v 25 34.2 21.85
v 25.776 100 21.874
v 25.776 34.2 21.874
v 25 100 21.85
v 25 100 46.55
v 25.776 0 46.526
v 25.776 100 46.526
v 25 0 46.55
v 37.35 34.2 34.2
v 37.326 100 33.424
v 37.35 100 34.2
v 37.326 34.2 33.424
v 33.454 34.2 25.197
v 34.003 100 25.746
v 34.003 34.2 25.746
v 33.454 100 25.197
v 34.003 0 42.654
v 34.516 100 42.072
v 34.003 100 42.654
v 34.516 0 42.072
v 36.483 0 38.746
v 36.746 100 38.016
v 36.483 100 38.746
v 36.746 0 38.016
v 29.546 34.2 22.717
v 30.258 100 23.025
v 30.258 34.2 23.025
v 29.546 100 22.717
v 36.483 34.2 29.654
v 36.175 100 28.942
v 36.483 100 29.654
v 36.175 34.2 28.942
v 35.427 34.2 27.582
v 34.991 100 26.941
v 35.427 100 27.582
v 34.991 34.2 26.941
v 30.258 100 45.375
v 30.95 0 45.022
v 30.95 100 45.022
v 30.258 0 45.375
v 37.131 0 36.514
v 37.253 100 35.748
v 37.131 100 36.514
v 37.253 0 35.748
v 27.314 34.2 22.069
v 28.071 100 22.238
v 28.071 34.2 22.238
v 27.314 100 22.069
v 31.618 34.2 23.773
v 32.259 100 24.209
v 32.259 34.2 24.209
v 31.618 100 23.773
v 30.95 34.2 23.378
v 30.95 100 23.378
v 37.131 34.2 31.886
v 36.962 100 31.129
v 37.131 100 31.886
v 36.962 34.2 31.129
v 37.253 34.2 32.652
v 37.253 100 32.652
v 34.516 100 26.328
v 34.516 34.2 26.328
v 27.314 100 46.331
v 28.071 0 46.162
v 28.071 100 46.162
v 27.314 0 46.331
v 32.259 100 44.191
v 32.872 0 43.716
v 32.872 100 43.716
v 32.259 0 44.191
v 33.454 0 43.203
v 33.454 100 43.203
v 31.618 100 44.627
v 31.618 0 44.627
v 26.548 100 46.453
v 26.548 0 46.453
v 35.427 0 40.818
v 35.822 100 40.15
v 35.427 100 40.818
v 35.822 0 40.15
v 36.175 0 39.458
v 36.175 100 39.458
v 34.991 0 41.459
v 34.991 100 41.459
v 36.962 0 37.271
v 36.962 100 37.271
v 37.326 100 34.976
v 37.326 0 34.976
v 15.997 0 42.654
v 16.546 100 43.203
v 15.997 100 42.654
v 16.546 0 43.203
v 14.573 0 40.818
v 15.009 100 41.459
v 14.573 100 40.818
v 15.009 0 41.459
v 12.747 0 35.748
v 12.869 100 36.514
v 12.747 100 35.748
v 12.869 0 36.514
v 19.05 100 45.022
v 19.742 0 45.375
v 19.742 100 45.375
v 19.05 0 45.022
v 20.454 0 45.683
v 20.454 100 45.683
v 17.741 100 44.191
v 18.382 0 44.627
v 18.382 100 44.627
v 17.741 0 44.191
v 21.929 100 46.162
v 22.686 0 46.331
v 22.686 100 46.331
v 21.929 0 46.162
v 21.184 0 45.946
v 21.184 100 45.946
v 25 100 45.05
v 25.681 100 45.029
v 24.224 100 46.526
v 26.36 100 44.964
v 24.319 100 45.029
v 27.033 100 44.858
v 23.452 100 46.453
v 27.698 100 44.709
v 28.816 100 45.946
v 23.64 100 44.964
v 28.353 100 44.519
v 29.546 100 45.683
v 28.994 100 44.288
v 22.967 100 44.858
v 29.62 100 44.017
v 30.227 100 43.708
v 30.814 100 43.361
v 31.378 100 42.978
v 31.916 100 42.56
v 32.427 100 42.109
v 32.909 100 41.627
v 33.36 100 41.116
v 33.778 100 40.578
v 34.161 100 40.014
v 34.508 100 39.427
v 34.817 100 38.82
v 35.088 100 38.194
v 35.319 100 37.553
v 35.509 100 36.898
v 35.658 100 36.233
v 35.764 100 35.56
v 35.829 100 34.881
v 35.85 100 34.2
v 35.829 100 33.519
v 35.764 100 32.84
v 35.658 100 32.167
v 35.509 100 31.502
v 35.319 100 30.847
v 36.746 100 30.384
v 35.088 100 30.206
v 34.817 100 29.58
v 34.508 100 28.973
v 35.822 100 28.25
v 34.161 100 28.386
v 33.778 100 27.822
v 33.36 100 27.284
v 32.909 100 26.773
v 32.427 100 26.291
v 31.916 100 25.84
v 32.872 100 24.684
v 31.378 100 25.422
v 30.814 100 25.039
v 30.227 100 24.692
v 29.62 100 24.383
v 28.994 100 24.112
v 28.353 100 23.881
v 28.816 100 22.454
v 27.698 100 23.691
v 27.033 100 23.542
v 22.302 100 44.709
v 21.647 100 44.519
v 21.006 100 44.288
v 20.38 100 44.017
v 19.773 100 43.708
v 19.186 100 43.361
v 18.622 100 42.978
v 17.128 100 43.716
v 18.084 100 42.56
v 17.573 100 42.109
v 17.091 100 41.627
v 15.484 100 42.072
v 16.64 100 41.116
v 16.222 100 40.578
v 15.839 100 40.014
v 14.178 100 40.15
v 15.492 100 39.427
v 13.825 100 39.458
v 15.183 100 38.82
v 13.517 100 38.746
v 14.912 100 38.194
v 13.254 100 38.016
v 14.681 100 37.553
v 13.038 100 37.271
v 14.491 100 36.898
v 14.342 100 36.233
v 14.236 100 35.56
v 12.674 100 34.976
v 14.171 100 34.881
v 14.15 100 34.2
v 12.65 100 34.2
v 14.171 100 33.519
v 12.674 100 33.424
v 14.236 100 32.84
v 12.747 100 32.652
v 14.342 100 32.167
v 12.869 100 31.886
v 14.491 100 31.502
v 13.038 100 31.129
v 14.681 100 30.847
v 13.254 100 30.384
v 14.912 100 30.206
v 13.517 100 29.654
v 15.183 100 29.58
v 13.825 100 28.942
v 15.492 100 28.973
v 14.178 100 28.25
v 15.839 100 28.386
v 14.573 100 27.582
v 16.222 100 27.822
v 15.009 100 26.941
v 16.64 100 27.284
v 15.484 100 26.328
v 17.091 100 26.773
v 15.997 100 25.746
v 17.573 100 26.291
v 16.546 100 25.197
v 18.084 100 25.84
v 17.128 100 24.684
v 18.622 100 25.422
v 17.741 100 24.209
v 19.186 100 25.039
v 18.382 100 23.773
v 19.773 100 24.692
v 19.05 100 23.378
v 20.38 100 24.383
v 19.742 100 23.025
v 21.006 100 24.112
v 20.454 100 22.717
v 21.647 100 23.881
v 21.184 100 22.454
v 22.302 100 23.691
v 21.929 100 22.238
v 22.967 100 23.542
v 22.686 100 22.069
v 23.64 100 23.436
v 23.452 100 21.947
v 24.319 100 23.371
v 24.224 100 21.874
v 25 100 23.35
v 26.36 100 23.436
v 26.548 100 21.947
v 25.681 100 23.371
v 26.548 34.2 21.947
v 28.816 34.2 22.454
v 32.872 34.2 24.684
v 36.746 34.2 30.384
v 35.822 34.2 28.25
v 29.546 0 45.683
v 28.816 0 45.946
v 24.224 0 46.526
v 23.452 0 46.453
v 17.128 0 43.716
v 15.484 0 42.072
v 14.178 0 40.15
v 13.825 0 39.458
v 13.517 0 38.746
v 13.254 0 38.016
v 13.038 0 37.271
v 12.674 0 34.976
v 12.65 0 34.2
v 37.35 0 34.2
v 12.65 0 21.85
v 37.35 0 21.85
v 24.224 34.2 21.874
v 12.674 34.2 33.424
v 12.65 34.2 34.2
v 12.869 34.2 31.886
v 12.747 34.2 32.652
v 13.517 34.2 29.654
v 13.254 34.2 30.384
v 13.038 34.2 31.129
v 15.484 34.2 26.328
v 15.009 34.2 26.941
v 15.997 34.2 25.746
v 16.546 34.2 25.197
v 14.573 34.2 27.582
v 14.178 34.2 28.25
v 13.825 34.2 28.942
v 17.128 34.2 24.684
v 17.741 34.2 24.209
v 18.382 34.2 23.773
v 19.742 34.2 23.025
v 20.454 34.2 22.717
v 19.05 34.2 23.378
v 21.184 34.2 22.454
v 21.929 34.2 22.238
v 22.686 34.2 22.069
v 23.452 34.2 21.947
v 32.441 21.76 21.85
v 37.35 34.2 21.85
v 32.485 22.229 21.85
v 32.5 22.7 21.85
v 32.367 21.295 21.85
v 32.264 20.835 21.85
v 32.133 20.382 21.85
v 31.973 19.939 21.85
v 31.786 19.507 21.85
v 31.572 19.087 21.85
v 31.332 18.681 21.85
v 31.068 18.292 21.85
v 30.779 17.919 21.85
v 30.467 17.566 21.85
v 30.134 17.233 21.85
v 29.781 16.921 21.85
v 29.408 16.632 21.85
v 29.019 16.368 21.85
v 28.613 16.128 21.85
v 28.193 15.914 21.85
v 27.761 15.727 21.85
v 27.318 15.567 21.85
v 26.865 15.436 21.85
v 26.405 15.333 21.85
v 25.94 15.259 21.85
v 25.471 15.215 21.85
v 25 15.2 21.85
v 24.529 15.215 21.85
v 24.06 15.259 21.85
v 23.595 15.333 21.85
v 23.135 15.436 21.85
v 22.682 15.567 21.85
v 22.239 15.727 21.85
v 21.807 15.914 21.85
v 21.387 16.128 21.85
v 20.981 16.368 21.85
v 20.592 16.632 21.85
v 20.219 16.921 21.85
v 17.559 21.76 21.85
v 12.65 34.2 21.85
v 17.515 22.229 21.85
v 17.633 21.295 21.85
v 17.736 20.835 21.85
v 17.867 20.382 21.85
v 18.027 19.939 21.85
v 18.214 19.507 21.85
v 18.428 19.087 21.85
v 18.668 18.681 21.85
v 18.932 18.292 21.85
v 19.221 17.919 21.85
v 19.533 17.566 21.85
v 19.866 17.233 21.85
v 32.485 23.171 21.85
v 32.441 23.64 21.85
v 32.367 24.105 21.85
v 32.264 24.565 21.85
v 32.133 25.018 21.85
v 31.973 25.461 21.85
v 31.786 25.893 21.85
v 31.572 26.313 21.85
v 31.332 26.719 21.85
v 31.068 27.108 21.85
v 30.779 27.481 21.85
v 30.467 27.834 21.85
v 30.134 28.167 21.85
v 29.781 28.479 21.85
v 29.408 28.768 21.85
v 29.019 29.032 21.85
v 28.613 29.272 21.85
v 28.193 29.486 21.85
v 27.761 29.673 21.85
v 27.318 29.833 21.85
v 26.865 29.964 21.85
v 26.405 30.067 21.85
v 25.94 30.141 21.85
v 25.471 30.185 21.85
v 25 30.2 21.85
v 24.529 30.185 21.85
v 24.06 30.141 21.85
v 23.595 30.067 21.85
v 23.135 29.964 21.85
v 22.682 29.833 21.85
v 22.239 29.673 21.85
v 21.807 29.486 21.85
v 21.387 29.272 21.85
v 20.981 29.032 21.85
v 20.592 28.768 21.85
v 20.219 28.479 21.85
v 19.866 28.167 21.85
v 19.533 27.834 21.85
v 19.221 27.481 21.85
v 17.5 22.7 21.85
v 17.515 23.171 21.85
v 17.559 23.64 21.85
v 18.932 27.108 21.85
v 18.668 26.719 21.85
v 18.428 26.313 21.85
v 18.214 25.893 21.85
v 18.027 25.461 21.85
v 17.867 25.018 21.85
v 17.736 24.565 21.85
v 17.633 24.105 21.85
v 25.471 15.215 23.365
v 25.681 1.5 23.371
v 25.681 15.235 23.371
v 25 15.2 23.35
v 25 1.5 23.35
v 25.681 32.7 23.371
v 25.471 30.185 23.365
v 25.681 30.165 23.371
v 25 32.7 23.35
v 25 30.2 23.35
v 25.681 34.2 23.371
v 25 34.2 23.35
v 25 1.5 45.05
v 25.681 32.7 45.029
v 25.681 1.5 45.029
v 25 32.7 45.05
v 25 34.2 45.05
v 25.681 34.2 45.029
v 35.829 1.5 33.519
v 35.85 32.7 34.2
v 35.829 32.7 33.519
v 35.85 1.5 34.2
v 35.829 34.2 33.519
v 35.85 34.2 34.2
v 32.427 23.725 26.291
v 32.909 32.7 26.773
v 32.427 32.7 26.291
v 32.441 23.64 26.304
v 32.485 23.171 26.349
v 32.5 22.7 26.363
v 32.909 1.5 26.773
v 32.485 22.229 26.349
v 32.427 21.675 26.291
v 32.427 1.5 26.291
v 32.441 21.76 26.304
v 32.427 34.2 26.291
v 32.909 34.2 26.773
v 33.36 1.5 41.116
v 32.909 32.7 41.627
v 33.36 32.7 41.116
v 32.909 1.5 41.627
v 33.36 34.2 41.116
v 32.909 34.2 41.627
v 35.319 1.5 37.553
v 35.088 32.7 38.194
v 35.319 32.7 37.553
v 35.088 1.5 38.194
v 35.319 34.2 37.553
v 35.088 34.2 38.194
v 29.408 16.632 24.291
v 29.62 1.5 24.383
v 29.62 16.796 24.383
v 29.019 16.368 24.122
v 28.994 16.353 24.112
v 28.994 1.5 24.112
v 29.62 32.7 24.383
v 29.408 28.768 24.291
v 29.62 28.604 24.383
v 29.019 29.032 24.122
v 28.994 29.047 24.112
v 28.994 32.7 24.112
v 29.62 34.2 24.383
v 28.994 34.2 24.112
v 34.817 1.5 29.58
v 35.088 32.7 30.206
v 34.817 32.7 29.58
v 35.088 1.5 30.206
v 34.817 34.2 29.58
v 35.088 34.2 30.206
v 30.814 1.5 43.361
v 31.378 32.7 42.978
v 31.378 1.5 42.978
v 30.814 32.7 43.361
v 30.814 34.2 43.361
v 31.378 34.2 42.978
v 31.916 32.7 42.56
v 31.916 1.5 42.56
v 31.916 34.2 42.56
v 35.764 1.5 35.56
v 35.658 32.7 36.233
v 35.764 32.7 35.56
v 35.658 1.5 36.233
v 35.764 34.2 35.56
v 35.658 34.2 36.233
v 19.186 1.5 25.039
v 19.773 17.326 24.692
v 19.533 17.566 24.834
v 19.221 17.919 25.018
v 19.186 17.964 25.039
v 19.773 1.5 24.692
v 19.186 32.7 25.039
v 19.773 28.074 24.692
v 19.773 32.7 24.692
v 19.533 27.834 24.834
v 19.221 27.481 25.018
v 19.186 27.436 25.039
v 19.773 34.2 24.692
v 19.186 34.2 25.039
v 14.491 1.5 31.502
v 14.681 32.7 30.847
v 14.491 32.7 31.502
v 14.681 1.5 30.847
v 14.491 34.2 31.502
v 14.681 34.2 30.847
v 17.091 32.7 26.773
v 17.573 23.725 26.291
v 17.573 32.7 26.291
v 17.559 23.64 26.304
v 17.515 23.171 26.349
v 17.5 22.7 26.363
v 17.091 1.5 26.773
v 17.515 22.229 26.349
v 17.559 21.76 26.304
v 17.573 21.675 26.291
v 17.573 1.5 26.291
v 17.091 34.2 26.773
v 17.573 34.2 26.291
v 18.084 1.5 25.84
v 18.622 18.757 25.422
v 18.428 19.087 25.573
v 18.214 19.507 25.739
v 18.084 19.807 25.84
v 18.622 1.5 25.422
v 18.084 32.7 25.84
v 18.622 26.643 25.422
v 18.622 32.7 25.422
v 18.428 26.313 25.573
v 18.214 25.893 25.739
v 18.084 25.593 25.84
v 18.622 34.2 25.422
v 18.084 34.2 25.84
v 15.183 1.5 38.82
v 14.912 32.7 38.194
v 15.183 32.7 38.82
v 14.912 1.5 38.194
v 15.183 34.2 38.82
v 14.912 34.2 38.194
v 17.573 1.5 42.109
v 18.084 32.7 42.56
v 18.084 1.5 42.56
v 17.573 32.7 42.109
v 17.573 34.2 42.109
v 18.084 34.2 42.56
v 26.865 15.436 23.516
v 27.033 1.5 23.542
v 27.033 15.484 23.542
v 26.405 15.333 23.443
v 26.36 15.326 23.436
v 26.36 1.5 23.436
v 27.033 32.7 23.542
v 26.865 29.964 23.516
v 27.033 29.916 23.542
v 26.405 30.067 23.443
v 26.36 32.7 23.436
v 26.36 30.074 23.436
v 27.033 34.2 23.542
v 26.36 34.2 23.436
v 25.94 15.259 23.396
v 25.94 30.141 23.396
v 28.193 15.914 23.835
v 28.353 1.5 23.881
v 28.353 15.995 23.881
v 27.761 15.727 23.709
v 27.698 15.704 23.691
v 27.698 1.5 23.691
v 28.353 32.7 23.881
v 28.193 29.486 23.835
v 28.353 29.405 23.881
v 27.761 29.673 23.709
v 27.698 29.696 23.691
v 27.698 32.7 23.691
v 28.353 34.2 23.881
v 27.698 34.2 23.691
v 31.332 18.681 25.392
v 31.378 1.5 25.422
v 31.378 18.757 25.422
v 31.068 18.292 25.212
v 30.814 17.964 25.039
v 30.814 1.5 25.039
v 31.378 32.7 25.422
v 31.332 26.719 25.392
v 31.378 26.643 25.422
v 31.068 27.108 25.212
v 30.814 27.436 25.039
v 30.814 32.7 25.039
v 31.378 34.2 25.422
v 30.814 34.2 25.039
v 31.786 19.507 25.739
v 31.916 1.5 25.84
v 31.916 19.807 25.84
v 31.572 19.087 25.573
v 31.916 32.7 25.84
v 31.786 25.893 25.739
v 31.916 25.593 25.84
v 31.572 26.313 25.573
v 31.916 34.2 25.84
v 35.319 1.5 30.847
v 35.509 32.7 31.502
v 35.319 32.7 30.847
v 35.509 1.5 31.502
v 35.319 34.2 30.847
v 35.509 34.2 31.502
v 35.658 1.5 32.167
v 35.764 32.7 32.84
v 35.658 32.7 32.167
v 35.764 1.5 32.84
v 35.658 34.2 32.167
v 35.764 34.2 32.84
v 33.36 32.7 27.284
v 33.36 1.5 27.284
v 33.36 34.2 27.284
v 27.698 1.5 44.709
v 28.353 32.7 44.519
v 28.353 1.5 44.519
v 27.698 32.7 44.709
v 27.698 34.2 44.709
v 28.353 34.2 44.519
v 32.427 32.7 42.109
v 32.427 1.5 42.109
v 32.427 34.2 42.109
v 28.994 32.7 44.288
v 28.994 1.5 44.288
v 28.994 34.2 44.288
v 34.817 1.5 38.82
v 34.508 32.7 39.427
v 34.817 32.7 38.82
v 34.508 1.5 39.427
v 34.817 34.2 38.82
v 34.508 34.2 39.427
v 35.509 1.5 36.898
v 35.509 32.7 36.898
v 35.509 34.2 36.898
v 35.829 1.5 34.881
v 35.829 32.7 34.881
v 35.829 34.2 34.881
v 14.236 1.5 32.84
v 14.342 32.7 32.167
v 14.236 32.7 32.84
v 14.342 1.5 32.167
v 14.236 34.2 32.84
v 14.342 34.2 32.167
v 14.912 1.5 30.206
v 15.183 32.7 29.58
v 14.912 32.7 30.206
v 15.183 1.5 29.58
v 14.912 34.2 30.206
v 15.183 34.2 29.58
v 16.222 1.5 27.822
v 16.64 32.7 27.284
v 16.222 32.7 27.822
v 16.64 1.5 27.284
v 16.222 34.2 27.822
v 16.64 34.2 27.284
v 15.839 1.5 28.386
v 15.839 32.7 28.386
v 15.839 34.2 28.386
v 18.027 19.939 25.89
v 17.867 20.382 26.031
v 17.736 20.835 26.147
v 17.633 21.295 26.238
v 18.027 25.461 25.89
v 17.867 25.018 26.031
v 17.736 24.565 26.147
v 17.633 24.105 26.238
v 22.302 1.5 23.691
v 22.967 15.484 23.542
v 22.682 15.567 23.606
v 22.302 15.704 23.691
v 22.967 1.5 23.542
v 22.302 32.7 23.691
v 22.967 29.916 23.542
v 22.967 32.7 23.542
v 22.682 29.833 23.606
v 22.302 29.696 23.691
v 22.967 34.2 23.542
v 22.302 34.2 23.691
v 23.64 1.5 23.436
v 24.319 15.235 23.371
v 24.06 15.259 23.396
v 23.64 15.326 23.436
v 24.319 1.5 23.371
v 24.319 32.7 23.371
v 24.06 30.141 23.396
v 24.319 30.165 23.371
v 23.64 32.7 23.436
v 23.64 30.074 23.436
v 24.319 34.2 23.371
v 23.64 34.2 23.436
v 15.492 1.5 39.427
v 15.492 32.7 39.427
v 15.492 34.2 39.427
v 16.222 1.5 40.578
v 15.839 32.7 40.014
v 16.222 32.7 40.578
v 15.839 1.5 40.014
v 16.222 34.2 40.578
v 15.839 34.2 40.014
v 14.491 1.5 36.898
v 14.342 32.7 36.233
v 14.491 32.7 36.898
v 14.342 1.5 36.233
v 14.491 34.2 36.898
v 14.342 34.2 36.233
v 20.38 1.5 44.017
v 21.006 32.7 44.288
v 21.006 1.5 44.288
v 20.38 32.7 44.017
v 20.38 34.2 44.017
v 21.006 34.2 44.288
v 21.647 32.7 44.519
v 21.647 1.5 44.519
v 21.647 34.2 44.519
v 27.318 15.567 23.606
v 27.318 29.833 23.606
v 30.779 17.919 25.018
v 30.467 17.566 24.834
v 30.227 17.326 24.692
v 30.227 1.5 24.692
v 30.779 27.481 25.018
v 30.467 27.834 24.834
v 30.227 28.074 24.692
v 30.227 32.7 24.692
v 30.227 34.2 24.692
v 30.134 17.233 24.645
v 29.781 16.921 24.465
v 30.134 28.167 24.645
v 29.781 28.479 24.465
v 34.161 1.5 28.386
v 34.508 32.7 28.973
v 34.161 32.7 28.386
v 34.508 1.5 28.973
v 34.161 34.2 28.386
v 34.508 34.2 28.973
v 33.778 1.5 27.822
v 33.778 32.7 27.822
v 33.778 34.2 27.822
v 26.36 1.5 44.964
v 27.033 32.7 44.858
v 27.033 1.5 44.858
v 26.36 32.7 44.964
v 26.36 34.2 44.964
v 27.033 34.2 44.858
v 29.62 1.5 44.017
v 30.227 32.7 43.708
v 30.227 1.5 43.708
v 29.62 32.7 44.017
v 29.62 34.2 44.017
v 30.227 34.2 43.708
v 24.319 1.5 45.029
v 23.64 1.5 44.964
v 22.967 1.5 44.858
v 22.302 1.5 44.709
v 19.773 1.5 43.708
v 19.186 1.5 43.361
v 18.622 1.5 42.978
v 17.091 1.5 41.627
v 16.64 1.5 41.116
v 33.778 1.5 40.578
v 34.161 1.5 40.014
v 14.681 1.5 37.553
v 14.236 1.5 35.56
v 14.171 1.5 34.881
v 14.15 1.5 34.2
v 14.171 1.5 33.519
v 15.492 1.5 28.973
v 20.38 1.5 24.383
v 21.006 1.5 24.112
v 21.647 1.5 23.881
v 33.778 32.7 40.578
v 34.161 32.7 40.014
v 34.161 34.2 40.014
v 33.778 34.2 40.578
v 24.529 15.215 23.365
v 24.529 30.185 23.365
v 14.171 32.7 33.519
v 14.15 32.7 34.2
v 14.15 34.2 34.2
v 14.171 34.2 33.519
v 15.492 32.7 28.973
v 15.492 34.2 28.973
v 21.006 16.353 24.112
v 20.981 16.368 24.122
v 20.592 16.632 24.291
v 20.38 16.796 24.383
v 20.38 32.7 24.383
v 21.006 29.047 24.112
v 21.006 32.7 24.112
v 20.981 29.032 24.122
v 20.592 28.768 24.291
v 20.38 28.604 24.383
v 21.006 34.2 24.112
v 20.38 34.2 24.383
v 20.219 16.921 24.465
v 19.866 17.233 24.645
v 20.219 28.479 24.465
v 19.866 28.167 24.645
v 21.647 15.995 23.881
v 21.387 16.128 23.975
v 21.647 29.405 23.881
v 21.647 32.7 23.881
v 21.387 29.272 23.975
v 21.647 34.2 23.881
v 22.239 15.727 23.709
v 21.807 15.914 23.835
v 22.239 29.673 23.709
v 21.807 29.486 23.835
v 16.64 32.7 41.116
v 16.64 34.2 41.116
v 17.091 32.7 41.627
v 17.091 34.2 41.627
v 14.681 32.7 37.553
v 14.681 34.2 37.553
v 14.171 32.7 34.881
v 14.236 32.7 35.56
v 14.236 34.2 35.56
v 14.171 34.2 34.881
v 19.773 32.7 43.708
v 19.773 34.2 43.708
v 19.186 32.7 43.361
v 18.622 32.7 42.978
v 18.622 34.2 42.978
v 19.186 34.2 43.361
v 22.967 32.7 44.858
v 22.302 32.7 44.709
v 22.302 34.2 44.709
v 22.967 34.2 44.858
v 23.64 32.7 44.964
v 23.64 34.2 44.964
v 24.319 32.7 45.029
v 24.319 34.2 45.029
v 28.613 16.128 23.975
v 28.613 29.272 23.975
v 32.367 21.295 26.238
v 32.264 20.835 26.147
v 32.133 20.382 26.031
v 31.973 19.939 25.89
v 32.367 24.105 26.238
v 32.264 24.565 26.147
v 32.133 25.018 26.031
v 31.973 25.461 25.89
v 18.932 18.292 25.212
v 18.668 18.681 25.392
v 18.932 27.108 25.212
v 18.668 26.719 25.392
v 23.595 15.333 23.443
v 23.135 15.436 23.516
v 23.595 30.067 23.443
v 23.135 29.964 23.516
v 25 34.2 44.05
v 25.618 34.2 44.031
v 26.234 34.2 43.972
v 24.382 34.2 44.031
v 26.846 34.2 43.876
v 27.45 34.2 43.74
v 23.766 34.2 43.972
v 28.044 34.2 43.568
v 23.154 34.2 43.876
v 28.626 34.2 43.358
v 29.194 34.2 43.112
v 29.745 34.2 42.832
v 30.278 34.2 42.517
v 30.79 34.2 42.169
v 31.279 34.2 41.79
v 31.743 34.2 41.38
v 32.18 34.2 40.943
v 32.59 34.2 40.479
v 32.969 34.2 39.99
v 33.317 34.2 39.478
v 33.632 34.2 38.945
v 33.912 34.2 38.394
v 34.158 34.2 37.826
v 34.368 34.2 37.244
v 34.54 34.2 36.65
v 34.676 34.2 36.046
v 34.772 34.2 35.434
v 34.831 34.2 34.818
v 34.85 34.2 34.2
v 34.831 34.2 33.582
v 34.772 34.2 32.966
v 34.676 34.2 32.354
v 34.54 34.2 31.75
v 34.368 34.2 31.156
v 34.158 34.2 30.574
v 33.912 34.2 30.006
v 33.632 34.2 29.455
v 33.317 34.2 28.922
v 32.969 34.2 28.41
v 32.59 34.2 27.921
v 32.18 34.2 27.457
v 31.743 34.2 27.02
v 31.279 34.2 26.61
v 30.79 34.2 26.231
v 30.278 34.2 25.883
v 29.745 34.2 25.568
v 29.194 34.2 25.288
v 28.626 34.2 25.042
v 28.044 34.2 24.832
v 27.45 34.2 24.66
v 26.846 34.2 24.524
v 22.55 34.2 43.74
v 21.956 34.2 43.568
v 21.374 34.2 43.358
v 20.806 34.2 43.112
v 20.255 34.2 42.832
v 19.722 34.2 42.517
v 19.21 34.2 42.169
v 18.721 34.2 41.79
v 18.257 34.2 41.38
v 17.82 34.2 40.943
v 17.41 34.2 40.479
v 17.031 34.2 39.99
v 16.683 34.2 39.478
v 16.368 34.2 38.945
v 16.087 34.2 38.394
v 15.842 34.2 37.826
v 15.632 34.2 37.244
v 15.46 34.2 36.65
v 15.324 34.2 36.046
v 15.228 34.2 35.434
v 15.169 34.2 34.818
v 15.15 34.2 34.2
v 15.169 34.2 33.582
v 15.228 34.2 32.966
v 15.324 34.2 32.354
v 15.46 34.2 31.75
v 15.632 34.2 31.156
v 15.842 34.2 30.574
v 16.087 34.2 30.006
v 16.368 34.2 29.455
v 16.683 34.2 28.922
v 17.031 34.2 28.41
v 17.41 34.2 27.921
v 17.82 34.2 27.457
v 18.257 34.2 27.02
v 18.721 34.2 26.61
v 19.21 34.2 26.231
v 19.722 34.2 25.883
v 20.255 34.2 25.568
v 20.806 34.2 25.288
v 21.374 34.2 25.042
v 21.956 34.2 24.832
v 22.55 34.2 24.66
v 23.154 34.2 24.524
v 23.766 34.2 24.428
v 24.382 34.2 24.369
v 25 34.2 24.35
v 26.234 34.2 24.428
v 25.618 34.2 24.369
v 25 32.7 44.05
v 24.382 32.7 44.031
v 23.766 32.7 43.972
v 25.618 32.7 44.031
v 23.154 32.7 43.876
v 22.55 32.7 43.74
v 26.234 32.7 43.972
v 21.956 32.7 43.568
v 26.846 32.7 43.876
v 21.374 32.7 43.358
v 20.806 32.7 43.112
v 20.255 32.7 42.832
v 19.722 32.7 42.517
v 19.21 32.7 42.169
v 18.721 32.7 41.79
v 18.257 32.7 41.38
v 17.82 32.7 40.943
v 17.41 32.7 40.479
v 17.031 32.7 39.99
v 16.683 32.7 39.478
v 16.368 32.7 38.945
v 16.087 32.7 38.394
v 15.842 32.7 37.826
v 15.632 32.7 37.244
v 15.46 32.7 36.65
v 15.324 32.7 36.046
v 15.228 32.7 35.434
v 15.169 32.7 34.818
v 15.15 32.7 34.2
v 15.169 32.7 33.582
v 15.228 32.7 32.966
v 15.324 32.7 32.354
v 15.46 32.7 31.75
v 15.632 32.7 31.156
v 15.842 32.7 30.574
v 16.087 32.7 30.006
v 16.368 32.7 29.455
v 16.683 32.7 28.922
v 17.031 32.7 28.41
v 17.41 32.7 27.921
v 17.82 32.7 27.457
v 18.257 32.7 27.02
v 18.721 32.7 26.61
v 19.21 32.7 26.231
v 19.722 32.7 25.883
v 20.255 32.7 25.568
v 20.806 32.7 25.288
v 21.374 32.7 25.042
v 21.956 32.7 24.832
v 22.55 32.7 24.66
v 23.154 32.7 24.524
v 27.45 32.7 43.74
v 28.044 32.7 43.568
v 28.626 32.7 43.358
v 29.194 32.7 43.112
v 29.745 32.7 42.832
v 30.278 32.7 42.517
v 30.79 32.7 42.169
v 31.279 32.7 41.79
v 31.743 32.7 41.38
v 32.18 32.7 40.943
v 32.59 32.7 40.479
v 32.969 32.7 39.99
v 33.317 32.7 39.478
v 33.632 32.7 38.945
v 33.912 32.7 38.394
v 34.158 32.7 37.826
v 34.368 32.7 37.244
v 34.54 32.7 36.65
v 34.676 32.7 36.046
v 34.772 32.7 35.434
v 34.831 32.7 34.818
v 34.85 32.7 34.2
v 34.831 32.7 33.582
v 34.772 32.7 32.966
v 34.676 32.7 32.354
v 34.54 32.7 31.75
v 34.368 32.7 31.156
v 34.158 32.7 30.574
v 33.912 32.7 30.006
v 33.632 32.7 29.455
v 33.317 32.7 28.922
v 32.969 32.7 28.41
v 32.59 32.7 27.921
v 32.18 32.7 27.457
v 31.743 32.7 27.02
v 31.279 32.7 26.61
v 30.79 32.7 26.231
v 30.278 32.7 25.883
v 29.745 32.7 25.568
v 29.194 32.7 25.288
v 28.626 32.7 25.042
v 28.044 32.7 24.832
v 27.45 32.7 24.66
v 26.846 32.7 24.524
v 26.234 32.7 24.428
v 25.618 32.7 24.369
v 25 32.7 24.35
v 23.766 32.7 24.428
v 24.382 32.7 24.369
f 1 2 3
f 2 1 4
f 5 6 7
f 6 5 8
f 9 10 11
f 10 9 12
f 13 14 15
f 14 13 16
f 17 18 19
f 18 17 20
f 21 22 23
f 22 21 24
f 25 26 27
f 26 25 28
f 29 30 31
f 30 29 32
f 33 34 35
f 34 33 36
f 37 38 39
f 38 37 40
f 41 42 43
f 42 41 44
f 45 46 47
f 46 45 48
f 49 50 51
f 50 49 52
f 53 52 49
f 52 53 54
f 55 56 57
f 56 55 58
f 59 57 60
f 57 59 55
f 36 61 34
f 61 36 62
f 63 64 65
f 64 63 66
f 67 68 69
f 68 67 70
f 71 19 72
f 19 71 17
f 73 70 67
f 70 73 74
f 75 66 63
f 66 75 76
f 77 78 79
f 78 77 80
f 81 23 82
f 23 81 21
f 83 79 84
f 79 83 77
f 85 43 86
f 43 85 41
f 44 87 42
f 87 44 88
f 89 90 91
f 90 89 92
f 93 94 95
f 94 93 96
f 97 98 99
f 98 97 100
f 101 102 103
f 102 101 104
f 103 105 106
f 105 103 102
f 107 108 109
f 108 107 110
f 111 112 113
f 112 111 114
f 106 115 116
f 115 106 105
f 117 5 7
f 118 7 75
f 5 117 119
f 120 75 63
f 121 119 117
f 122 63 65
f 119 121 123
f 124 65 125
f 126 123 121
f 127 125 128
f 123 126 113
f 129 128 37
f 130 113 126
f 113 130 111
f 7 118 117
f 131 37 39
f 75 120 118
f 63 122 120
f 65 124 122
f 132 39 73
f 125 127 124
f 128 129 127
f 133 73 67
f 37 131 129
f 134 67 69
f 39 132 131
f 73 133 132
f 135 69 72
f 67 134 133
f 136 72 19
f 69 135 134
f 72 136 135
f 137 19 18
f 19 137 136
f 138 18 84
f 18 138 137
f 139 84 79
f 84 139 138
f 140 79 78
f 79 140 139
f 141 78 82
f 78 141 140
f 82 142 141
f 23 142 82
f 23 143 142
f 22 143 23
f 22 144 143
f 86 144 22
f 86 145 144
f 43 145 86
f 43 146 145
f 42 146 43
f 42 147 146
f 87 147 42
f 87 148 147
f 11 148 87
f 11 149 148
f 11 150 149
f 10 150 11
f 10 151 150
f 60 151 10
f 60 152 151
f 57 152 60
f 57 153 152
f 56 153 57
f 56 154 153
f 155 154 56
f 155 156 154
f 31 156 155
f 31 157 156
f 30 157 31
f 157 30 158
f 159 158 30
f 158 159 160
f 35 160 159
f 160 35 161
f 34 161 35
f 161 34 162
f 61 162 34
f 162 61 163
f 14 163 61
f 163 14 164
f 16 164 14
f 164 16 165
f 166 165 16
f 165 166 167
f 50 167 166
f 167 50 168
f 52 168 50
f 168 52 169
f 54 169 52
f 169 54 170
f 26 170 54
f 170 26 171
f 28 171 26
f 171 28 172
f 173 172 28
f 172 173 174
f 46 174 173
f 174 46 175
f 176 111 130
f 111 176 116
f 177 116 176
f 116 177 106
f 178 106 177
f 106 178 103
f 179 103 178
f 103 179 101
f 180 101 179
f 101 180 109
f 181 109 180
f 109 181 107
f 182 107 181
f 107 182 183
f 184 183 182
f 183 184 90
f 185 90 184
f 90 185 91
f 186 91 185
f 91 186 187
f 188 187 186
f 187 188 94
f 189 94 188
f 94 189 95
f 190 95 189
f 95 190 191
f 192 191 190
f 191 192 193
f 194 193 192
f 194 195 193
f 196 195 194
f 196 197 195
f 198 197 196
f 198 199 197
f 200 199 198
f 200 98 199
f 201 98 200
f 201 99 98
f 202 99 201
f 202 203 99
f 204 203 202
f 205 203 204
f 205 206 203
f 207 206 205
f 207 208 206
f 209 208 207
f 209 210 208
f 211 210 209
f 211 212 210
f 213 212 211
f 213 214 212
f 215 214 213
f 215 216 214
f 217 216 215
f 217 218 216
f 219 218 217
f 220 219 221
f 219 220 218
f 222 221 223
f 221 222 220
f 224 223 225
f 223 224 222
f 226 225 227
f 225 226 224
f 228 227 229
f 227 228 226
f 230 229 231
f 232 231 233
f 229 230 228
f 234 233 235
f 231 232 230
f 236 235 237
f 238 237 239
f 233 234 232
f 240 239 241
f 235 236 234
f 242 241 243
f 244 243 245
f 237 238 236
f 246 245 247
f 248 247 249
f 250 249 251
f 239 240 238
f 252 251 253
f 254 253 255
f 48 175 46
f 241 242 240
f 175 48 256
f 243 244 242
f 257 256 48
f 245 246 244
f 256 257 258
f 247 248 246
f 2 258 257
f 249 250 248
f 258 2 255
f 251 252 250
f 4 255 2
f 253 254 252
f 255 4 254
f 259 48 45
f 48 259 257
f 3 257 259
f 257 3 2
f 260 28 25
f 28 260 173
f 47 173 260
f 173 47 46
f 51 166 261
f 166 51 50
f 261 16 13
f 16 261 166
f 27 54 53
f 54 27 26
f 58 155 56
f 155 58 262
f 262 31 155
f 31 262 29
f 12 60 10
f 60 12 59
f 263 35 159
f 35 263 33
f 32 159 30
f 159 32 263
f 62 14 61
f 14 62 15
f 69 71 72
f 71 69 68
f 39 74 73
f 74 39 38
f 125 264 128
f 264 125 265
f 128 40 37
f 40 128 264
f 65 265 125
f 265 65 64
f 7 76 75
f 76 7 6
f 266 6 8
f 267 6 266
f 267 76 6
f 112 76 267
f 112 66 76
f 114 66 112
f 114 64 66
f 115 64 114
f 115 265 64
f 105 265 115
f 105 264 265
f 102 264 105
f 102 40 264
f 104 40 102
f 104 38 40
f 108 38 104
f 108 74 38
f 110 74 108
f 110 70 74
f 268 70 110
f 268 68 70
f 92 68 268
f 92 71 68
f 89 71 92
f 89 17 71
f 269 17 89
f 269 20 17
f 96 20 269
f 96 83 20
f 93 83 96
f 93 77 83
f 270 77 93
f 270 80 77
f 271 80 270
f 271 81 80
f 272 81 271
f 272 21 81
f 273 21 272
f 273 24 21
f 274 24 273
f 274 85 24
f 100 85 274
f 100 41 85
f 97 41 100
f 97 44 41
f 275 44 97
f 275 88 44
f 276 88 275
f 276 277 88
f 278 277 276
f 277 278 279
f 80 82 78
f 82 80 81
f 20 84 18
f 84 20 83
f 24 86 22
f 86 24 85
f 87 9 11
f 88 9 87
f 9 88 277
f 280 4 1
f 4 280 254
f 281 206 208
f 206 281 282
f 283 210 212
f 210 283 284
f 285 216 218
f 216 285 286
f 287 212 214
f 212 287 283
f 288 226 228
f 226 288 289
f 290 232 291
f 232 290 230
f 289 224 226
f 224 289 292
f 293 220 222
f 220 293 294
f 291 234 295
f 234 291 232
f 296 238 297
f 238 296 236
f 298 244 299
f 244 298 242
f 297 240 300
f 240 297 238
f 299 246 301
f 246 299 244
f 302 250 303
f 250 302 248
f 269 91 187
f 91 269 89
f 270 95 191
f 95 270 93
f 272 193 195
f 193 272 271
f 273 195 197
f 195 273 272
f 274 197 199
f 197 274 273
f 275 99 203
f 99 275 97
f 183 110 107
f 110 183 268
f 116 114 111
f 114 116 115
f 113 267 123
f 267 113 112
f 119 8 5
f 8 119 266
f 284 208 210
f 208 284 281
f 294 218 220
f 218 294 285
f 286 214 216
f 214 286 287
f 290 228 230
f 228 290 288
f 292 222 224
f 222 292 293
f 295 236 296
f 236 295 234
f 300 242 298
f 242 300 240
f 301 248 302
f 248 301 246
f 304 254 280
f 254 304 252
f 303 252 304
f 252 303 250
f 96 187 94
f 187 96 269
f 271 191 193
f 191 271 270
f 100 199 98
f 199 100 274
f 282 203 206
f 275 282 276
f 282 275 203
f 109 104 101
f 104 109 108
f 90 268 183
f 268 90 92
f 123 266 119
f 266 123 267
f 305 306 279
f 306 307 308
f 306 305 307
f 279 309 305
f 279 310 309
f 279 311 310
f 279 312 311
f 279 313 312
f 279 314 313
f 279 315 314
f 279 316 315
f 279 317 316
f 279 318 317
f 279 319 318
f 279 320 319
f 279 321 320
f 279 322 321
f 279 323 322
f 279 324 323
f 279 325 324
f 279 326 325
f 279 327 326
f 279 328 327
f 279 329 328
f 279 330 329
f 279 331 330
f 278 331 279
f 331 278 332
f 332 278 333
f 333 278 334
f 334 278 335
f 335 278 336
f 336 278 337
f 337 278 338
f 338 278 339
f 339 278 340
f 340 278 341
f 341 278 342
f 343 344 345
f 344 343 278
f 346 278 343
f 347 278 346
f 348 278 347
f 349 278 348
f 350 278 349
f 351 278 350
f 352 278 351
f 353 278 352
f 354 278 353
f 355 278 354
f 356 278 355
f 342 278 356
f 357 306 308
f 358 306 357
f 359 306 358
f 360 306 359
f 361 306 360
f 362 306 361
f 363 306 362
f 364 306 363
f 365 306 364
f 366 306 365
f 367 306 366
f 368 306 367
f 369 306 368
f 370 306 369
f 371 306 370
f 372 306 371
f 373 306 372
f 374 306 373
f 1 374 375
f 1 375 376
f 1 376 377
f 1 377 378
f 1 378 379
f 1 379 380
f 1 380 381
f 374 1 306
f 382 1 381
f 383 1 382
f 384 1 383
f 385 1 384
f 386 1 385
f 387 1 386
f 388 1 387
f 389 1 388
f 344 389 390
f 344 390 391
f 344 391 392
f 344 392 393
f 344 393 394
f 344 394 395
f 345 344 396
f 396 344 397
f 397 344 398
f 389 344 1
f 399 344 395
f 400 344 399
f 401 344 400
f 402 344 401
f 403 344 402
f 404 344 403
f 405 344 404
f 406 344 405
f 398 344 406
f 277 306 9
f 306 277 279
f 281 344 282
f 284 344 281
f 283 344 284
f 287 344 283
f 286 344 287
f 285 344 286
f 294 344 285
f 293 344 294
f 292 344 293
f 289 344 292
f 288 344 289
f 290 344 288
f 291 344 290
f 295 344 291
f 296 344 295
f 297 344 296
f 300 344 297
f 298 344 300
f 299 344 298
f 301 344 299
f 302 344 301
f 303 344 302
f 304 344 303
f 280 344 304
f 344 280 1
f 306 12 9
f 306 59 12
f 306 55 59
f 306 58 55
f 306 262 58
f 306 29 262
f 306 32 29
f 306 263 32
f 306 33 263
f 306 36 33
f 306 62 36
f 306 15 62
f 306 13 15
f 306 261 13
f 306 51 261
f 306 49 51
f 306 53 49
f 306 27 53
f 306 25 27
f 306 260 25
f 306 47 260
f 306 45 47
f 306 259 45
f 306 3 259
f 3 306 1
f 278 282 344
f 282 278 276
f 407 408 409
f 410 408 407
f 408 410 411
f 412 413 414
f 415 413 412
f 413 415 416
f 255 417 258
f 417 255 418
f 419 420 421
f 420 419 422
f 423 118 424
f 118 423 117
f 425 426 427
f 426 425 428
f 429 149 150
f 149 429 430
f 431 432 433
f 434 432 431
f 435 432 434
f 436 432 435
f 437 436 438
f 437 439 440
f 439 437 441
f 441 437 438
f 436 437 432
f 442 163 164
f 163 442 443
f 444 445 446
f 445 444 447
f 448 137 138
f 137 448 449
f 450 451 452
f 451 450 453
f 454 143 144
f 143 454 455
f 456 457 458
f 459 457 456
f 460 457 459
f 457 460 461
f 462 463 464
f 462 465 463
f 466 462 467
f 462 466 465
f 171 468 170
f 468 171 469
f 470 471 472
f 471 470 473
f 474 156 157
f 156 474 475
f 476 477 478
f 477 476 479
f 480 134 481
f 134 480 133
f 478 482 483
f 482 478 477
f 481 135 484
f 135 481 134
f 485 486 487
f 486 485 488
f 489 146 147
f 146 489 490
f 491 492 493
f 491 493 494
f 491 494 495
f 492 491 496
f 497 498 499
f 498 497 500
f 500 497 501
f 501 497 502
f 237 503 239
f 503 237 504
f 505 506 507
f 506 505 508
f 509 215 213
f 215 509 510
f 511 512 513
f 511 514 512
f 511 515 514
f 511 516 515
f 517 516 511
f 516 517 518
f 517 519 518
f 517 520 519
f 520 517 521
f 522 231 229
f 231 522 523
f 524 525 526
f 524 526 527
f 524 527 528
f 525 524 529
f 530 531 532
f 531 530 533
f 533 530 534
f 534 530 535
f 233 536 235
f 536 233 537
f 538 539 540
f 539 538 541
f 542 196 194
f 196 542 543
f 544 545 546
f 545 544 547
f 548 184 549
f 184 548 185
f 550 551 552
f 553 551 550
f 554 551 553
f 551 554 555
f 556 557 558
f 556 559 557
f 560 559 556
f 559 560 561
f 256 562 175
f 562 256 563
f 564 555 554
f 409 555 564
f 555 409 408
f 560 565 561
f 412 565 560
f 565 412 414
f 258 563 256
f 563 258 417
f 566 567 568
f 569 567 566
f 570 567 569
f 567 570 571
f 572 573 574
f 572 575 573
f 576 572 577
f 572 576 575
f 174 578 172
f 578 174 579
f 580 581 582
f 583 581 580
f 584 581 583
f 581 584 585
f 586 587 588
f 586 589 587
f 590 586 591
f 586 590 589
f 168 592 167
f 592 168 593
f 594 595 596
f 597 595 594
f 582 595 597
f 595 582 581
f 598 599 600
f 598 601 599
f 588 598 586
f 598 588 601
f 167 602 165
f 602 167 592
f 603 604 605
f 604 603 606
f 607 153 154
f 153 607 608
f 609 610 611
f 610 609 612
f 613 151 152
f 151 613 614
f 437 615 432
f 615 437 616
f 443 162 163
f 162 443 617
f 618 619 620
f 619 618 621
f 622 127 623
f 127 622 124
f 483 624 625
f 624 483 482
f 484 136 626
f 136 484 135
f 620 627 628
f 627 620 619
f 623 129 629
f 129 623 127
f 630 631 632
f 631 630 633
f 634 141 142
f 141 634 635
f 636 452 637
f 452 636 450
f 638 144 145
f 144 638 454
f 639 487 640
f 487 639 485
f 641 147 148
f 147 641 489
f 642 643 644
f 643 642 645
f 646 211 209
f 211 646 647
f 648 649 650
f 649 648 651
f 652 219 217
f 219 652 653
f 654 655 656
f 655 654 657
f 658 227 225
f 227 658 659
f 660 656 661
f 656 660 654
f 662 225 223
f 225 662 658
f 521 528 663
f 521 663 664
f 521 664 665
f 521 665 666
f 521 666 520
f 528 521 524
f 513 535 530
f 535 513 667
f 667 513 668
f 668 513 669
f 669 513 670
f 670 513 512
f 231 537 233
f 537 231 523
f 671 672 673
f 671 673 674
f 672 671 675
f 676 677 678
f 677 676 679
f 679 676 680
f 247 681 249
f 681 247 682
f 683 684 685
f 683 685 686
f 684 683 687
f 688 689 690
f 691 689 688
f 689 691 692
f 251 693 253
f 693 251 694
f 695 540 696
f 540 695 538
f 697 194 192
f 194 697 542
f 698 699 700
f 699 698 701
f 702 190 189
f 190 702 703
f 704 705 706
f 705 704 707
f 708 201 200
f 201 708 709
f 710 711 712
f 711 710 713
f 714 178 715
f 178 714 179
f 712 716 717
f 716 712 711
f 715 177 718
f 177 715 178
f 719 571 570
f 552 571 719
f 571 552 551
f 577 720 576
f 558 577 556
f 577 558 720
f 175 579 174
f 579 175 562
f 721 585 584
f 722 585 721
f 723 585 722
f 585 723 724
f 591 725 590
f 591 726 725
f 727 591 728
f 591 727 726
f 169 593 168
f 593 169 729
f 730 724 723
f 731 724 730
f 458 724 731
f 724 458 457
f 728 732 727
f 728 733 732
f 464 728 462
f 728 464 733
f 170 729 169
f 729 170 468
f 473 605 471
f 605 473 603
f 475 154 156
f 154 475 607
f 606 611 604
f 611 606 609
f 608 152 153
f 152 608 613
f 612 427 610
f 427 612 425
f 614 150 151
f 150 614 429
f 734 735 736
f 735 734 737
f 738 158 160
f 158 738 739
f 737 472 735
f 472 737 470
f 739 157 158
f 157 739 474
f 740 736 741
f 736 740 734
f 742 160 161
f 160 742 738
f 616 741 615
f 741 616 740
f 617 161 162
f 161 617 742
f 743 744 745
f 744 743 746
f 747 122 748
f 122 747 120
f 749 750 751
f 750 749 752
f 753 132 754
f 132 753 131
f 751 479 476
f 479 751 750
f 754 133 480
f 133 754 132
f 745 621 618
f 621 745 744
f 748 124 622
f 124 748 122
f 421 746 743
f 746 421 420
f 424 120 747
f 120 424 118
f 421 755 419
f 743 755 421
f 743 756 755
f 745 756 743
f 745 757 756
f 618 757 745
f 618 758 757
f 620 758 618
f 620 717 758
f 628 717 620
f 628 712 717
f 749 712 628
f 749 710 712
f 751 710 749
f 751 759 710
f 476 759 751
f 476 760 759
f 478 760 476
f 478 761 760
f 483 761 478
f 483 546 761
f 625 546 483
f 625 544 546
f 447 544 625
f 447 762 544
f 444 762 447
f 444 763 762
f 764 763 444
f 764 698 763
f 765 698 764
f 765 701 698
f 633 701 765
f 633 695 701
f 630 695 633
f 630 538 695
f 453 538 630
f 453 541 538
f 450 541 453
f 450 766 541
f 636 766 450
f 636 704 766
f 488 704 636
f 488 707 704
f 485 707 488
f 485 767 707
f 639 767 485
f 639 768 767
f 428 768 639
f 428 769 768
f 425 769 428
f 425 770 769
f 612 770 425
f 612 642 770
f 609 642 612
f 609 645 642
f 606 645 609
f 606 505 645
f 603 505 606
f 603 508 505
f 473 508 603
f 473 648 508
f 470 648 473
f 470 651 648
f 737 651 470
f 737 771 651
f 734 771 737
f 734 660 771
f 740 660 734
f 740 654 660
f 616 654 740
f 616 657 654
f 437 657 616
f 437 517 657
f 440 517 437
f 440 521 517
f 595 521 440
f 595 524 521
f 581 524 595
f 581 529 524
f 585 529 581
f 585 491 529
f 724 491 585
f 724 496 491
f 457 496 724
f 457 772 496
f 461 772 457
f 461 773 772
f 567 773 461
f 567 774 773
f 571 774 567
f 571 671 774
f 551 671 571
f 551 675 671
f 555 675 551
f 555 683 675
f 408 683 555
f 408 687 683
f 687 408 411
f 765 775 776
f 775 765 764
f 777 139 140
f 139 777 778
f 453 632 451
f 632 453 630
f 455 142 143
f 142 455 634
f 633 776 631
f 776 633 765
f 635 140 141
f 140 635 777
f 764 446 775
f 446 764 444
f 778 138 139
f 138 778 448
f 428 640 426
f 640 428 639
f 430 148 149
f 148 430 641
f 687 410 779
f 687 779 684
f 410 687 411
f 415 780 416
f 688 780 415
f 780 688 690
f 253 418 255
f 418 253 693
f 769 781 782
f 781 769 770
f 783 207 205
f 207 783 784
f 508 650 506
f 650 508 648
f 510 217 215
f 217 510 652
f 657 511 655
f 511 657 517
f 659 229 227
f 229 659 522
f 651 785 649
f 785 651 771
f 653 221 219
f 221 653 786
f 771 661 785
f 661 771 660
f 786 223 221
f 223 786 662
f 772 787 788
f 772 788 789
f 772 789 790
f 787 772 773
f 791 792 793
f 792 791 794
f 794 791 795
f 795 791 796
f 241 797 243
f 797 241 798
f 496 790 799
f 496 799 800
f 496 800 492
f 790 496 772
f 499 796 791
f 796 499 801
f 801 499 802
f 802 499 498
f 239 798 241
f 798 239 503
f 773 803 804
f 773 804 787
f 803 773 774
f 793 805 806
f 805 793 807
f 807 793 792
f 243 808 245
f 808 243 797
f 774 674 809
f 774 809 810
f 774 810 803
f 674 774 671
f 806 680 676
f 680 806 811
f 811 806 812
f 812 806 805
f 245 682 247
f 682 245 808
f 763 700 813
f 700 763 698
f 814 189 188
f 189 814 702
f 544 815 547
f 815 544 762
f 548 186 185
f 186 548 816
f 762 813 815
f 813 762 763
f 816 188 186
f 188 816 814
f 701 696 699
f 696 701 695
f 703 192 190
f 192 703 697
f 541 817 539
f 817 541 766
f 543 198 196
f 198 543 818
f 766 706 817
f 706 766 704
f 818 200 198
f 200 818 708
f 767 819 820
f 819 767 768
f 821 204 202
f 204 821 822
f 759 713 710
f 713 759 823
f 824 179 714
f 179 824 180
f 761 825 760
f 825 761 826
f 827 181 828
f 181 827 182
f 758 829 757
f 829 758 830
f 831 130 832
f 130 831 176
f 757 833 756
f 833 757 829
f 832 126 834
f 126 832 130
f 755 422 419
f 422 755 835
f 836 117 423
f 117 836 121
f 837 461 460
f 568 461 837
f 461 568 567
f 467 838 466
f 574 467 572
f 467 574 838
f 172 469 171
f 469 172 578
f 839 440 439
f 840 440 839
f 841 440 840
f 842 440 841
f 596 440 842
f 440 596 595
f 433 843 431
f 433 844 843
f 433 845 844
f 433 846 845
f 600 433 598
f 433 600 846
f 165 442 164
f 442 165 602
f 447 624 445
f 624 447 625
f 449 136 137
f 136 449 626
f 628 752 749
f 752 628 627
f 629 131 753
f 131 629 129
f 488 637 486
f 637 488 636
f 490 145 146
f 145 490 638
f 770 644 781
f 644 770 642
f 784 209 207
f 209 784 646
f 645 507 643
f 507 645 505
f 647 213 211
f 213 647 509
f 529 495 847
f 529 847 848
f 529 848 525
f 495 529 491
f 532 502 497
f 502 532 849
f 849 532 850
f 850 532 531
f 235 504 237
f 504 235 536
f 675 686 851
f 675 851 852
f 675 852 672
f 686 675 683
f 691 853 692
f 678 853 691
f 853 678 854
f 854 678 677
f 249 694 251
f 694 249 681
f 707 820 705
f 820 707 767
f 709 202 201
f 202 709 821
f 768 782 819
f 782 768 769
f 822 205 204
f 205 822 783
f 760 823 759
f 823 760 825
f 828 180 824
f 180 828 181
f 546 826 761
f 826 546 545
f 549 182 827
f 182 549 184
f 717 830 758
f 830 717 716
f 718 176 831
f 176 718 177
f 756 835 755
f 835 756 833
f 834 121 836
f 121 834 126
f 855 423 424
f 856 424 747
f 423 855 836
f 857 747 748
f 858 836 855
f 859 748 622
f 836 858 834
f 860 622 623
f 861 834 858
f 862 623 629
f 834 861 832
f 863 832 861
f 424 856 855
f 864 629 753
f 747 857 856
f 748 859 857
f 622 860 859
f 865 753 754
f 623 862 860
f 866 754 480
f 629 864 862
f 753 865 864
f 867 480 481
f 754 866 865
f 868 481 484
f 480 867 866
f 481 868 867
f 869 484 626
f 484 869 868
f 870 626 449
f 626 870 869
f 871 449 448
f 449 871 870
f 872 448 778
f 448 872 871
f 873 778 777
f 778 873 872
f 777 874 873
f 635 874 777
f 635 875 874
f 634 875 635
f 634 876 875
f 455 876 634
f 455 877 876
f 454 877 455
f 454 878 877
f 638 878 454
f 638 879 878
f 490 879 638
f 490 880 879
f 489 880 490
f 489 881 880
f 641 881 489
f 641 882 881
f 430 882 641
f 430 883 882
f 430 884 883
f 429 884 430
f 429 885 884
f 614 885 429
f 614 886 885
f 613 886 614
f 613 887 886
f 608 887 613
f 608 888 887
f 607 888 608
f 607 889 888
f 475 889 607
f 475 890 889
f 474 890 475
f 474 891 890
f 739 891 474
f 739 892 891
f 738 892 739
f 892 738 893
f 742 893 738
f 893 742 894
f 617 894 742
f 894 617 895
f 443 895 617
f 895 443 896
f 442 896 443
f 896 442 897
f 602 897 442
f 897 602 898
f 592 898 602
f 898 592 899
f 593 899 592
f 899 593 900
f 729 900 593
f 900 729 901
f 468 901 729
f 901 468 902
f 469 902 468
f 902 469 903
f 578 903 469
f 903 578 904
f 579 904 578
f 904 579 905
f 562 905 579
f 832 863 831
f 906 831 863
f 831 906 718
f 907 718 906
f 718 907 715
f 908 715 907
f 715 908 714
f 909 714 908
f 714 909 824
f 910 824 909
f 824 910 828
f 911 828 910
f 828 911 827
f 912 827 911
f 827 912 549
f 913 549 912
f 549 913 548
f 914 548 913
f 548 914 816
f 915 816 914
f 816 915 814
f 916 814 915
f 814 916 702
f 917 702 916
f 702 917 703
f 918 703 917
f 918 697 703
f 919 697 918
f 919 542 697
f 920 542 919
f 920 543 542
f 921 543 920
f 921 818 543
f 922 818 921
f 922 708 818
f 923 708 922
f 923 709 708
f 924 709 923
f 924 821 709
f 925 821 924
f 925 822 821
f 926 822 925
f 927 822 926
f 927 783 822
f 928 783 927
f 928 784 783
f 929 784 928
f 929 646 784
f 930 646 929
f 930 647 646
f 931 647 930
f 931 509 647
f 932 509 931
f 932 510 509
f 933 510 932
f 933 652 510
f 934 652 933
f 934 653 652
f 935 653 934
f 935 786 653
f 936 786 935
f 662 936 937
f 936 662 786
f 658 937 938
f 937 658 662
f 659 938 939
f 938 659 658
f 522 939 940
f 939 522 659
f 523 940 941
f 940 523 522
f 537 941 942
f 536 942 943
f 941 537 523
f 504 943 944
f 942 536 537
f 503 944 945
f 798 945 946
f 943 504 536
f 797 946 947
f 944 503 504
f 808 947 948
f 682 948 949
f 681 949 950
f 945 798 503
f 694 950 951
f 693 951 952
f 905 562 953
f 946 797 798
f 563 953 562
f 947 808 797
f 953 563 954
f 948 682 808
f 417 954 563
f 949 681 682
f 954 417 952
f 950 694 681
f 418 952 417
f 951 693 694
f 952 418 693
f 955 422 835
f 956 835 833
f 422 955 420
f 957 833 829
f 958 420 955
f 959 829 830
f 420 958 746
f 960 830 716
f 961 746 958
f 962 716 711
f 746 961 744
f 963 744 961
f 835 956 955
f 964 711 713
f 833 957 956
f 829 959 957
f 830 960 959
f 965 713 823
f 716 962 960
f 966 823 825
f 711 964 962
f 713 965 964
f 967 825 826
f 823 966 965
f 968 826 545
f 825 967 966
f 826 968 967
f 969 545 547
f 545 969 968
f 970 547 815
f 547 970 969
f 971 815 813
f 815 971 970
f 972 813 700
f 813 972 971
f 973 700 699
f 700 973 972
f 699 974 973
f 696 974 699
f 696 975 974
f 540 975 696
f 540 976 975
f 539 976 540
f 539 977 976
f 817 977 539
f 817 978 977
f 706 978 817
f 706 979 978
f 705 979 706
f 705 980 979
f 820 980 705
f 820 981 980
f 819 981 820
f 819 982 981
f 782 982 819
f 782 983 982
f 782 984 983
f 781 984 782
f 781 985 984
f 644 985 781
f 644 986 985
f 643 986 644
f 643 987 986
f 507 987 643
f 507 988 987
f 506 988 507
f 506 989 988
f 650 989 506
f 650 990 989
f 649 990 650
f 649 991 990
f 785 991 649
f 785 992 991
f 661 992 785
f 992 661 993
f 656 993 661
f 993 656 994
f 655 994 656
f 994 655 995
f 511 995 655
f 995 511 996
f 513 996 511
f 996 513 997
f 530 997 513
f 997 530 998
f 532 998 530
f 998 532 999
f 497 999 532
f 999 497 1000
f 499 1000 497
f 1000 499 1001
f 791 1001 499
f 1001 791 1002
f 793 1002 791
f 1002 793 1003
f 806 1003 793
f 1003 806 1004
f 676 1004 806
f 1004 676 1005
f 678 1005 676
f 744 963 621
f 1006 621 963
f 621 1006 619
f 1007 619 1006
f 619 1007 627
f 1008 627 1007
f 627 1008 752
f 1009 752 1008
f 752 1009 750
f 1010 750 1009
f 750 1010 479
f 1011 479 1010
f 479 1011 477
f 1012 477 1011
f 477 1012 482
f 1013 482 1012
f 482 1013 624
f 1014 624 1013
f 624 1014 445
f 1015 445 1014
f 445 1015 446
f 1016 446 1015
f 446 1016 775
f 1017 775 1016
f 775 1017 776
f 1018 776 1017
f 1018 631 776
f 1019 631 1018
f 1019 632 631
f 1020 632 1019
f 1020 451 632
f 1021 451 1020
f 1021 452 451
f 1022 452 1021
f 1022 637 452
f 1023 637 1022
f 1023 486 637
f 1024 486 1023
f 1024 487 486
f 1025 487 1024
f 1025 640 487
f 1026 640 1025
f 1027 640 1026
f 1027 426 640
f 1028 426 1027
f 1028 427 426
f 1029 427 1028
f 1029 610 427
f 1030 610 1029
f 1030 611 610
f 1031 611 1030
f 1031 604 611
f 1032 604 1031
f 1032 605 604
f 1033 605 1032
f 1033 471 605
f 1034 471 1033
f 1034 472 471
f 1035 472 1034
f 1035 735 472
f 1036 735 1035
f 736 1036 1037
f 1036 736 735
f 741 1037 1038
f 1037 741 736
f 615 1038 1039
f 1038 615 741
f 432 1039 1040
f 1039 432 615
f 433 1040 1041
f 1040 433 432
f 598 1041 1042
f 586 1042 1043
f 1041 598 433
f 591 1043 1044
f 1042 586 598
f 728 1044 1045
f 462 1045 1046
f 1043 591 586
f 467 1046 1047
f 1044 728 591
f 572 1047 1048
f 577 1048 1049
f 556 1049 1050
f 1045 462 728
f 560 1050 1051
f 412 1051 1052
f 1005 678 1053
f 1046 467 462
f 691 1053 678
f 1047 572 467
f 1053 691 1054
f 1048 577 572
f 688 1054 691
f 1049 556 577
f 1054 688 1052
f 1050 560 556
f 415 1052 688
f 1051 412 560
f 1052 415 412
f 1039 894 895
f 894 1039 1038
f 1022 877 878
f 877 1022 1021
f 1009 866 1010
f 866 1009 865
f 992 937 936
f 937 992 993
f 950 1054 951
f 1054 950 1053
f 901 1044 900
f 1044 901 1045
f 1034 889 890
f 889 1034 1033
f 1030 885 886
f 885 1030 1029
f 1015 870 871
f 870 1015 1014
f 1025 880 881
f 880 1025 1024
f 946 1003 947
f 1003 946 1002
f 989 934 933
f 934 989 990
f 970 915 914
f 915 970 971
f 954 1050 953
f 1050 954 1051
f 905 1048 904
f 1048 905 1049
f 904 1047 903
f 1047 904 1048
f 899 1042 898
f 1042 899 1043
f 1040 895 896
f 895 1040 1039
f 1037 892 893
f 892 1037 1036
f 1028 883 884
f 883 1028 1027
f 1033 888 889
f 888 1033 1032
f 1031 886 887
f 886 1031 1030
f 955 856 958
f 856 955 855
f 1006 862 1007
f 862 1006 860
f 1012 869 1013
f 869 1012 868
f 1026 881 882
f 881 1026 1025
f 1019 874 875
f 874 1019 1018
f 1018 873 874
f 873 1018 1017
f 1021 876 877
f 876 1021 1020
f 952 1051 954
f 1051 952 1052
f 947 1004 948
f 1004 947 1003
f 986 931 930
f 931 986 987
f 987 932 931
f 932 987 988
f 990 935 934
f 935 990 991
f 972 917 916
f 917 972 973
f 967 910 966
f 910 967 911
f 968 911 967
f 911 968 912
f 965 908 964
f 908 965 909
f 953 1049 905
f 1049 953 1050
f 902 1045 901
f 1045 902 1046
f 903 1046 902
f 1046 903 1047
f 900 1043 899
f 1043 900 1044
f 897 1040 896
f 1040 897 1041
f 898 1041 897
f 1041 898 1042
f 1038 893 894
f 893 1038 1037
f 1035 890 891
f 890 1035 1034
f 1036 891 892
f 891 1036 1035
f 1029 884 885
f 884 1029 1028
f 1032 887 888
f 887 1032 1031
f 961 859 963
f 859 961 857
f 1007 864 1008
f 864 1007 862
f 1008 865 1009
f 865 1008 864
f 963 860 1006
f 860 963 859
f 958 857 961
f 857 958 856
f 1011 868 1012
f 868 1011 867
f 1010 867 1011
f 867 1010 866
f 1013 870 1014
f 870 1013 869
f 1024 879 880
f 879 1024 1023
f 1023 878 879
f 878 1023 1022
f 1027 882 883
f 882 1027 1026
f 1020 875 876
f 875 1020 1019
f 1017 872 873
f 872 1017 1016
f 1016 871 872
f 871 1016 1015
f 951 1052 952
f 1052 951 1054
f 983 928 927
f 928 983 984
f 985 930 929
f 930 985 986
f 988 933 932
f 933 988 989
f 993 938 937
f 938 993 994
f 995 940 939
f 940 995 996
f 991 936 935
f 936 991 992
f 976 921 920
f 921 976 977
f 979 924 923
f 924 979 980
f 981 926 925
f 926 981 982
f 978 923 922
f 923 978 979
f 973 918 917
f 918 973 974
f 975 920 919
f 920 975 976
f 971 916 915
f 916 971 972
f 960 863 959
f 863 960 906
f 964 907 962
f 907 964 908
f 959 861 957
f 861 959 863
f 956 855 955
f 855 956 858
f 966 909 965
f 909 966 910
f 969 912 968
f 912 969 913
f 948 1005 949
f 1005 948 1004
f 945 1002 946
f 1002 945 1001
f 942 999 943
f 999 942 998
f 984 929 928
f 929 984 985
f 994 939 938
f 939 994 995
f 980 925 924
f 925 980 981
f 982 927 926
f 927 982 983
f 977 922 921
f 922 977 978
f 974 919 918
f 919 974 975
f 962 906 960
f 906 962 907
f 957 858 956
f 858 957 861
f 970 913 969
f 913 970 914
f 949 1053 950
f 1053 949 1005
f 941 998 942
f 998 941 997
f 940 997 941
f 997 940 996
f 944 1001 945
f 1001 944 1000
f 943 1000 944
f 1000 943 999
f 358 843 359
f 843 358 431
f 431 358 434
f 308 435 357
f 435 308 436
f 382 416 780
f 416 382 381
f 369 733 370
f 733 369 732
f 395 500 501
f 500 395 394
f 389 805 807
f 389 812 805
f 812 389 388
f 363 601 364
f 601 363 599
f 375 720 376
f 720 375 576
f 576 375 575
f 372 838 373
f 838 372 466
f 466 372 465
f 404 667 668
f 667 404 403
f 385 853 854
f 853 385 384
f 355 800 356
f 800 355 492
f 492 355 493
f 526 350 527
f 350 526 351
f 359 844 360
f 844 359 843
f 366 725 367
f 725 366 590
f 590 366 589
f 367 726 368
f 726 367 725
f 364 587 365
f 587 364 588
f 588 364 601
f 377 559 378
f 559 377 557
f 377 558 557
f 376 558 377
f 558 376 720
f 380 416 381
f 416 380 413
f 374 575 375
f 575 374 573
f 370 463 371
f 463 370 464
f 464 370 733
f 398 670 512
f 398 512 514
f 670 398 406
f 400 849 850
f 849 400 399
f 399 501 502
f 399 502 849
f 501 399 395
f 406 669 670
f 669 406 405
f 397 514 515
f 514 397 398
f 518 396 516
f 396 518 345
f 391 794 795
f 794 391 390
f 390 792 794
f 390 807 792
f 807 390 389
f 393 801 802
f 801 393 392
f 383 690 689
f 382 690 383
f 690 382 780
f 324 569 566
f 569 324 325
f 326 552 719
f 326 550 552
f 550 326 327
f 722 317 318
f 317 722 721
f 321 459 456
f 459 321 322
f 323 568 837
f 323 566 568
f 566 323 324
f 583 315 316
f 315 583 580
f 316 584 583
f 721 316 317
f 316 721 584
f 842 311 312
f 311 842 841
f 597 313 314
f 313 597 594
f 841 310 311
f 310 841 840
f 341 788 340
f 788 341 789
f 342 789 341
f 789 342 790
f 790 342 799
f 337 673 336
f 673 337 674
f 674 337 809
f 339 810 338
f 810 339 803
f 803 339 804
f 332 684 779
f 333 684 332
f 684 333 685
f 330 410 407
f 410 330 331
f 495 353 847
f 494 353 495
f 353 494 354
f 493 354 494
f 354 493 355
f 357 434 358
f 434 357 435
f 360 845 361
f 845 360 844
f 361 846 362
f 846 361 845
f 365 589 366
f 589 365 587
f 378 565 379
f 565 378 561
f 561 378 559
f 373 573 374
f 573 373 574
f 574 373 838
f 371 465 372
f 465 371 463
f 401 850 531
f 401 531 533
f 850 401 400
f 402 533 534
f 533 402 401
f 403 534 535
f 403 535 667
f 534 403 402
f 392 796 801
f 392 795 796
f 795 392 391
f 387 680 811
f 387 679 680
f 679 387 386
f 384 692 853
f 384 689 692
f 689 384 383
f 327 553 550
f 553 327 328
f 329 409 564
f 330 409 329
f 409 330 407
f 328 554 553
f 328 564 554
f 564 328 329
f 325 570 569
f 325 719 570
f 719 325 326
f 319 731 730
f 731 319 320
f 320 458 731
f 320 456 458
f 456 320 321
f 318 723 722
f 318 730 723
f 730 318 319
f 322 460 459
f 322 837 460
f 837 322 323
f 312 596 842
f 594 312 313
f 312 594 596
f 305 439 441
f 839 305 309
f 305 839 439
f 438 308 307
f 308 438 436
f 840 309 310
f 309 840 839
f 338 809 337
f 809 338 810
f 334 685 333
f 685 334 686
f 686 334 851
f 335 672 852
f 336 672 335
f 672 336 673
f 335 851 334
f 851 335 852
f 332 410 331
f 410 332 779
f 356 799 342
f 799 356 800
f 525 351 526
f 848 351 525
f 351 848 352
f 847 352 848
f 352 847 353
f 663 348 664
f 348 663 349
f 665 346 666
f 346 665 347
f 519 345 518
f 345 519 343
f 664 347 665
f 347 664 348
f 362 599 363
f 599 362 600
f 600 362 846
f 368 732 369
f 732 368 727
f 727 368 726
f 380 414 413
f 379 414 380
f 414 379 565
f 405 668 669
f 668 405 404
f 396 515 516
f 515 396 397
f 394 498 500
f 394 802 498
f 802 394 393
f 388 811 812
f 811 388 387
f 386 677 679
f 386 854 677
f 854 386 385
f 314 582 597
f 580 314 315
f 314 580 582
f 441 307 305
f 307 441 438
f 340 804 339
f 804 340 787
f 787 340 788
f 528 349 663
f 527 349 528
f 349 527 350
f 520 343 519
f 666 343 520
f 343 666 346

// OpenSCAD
$fn=100;


ml_clip_width=50; // Default: 50. The width of the clip
ml_clip_depth=30.2; // This is the width of the lamp. I used an U-profile with a size of 30mm. Recommendation to add 0.2 to fit perfectly. 
ml_clip_heigth=20.6; // The height of the lamp. This is the height of the U-Profile and the thickness of the diffusor. the Diffusor has a thickenss of 0.4 and i recommnd to add another 0.2mm to fit perfectly (20.6 for 20 mm profile).
ml_clip_thickness=1.0; // The material thickness of the clip (One mm will be added automatically)

ml_pipe_diameter=21.3; // The diameter of the pipe which holds the lamp. "ml_pipe_sleeve_extension" will automatically be added, so that the holder slips well over the tube.
ml_pipe_sleeve_extension=0.4;
ml_pipe_sleeve_length=100;
ml_pipe_sleeve_thickness=1.5;


module lamp_pipe_sleeve(d, l, t, e, bl) {
    r_outer = (d + e + t * 2) / 2;
    d_outer = d + e + t * 2;
    difference() {
        union() {
            cylinder(h=l, r=r_outer);

            color("green")
            translate([0, -r_outer, l - bl])
            cube([r_outer, d_outer, bl]);
        }

        // Pipe-sleeve
        color("red")
        translate([0,0,-t])
        cylinder(h=l, r=(d + e) / 2);
    }


    difference() {
        translate([0, 0, l - bl])
        cylinder(h=t, r=r_outer);
        translate([0, 0, l - bl - 1])
        cylinder(h=t+2, r=(d + e) / 2 - 1);
    }
}

difference() {
        
    // The part which will be put on the pipe
    translate([ml_clip_width/2, 
                ml_pipe_sleeve_length, 
                ml_clip_heigth + ml_clip_thickness * 2 + ((ml_pipe_diameter + ml_pipe_sleeve_thickness + ml_pipe_sleeve_extension ) / 2)])
    rotate([90,90,0])
    lamp_pipe_sleeve(ml_pipe_diameter,
                ml_pipe_sleeve_length, 
                ml_pipe_sleeve_thickness,
                ml_pipe_sleeve_extension, 
                ml_clip_depth + ml_clip_thickness * 2 + 2);

    // The hole between clip and case
    color("red")
    translate([ml_clip_width/2, ml_clip_depth - 7.5, ml_clip_heigth])
    cylinder(h=6, r=7.5);

}
